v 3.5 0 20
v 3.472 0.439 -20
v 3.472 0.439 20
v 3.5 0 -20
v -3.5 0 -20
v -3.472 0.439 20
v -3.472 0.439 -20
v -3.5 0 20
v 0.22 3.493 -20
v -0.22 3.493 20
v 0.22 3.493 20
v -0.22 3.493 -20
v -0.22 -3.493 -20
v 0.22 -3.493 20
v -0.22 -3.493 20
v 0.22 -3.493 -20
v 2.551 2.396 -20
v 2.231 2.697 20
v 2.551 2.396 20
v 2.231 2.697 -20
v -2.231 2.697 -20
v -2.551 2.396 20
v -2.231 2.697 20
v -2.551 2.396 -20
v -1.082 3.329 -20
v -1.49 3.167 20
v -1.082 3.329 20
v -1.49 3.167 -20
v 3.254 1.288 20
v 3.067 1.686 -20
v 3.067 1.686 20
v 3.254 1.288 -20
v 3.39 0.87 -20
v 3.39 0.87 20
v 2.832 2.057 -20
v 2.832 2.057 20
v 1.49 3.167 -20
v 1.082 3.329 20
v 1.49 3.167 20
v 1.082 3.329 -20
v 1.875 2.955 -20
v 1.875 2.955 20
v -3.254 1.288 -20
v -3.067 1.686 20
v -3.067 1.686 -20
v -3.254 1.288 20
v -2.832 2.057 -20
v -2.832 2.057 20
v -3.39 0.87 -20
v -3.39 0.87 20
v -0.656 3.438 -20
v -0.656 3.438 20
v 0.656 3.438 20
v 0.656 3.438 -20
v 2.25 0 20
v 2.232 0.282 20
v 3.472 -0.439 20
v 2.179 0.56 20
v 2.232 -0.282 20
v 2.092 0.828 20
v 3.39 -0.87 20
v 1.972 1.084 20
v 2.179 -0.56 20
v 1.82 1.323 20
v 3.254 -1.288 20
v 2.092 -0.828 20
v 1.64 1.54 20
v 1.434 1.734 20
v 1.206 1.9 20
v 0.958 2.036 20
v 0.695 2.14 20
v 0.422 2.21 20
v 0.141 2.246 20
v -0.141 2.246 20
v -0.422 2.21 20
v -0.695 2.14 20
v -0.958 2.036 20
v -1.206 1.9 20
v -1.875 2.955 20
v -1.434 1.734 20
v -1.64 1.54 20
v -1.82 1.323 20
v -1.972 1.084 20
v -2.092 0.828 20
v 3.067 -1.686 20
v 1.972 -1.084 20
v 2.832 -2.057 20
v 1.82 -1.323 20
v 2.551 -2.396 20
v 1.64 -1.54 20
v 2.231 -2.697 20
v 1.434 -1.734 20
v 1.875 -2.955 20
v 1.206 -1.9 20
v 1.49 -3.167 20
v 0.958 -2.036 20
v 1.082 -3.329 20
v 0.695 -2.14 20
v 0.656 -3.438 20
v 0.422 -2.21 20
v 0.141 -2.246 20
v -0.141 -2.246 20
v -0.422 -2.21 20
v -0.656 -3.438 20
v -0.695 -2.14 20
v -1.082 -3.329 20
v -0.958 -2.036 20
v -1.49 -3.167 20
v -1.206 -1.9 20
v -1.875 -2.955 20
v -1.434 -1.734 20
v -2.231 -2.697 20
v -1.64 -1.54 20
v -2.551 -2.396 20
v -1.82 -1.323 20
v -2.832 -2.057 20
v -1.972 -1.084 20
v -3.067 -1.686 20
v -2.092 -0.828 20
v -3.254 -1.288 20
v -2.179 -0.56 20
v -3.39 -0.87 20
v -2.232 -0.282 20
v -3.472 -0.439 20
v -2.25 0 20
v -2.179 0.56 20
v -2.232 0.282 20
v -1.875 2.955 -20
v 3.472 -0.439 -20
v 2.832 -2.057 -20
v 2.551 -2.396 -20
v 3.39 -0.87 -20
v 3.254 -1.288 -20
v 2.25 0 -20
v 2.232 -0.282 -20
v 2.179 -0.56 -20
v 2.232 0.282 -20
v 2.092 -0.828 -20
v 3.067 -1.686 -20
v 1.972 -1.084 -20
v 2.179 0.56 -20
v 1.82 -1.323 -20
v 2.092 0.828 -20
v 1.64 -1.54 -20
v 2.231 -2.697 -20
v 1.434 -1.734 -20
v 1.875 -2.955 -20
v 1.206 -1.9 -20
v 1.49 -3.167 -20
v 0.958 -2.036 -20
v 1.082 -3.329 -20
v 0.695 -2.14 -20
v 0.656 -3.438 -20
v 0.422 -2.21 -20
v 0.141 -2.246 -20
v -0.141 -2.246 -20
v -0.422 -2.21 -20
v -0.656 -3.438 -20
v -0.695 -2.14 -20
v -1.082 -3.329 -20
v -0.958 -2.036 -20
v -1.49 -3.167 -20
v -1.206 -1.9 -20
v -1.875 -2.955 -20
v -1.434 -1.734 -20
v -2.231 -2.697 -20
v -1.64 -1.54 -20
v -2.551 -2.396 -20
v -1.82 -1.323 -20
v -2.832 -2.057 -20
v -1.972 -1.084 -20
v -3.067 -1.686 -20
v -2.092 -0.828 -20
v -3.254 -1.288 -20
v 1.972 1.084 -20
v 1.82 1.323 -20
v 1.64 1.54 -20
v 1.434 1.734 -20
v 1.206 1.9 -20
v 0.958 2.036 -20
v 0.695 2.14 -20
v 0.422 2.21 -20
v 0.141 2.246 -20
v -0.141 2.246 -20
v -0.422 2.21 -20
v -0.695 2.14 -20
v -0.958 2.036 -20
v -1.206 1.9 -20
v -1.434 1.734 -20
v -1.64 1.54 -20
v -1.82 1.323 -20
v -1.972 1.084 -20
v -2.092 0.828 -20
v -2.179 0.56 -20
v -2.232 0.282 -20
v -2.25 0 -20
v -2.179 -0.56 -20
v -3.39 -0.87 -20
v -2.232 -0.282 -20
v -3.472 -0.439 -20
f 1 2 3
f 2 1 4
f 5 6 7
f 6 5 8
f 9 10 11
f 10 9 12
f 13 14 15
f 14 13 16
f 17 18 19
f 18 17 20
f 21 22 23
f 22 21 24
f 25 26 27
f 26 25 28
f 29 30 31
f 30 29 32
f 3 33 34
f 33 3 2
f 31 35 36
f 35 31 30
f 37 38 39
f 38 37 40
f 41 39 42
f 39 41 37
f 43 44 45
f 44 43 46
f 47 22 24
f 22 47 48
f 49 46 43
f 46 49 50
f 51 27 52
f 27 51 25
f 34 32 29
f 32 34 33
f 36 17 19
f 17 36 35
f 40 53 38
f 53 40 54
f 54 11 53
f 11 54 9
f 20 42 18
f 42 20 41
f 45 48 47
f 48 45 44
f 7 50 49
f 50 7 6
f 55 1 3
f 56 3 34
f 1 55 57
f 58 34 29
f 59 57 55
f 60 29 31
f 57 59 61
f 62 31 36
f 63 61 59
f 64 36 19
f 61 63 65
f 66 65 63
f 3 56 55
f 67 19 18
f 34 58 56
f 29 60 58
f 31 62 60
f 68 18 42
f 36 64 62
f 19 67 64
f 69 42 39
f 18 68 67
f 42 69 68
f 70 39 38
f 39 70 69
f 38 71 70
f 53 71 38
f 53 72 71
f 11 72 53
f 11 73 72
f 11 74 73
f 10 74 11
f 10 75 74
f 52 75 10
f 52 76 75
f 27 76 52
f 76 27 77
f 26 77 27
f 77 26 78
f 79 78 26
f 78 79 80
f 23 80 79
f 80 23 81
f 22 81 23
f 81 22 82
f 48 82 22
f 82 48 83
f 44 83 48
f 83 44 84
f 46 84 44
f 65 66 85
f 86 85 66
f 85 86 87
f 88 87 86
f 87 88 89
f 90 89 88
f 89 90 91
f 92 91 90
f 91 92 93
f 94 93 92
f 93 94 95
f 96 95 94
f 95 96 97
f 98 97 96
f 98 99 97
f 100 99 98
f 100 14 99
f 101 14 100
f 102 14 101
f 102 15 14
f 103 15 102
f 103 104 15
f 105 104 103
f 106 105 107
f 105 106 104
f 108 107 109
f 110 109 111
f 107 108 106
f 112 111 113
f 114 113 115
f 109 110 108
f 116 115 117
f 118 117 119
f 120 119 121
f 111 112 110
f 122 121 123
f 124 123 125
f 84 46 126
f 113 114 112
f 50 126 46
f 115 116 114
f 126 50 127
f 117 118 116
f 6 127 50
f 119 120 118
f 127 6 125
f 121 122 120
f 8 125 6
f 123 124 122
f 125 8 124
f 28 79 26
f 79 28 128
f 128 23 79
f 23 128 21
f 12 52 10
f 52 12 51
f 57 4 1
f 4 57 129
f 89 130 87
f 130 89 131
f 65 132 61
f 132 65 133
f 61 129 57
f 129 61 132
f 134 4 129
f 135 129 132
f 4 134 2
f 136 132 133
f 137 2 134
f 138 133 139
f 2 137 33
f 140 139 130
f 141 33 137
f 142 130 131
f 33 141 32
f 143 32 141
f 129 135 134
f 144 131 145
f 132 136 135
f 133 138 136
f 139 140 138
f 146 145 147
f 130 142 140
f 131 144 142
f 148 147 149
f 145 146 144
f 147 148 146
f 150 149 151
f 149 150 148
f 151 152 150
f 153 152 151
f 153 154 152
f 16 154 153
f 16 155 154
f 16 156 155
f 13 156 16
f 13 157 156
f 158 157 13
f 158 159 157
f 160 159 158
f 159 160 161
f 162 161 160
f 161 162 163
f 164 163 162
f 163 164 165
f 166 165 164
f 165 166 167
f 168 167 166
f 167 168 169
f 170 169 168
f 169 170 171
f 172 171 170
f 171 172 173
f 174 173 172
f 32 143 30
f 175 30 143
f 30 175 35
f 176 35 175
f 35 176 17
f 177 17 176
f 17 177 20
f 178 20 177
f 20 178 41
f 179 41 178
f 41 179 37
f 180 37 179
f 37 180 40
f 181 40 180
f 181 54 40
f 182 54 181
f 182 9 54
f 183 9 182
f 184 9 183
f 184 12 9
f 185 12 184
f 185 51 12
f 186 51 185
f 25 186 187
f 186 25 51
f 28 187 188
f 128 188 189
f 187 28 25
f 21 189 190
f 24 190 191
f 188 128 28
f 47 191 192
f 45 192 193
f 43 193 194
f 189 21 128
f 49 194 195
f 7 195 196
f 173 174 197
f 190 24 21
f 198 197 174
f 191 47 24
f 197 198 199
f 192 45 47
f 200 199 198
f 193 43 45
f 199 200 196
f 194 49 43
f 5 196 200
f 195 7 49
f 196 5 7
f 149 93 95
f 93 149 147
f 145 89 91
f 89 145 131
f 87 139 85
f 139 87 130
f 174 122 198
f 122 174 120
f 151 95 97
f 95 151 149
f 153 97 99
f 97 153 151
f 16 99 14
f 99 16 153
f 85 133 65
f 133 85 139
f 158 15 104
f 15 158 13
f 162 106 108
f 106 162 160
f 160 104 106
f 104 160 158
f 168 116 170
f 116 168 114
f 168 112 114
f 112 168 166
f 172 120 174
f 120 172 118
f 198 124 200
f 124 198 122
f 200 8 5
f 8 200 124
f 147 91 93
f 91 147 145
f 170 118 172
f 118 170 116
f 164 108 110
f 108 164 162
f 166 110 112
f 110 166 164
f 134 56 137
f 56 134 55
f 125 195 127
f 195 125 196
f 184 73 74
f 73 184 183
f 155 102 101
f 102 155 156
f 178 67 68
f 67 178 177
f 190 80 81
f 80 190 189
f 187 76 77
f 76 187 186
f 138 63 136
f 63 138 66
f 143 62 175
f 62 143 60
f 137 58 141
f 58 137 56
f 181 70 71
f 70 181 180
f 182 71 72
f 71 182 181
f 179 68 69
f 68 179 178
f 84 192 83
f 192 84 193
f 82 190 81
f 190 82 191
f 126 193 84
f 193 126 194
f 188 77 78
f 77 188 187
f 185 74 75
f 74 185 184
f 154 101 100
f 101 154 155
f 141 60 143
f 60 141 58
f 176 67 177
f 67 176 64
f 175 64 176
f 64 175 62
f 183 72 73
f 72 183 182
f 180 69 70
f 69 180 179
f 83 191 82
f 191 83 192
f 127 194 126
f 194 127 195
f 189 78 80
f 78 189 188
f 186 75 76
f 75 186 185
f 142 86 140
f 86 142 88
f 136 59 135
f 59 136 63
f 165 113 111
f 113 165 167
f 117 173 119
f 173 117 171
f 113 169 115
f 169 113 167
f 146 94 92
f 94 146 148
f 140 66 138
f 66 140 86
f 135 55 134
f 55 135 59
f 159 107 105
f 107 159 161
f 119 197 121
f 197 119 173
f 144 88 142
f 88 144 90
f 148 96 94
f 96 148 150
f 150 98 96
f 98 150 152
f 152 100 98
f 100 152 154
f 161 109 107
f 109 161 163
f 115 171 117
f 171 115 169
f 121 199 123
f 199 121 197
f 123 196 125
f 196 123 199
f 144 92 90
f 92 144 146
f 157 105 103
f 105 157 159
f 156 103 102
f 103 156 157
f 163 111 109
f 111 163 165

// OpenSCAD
$fn = 50;


difference() {
	union() {
		translate(v = [0, 0, -20.0000000000]) {
			cylinder(h = 40, r = 3.5000000000);
		}
	}
	union() {
		translate(v = [0, 0, -100.0000000000]) {
			cylinder(h = 200, r = 2.2500000000);
		}
	}
}
